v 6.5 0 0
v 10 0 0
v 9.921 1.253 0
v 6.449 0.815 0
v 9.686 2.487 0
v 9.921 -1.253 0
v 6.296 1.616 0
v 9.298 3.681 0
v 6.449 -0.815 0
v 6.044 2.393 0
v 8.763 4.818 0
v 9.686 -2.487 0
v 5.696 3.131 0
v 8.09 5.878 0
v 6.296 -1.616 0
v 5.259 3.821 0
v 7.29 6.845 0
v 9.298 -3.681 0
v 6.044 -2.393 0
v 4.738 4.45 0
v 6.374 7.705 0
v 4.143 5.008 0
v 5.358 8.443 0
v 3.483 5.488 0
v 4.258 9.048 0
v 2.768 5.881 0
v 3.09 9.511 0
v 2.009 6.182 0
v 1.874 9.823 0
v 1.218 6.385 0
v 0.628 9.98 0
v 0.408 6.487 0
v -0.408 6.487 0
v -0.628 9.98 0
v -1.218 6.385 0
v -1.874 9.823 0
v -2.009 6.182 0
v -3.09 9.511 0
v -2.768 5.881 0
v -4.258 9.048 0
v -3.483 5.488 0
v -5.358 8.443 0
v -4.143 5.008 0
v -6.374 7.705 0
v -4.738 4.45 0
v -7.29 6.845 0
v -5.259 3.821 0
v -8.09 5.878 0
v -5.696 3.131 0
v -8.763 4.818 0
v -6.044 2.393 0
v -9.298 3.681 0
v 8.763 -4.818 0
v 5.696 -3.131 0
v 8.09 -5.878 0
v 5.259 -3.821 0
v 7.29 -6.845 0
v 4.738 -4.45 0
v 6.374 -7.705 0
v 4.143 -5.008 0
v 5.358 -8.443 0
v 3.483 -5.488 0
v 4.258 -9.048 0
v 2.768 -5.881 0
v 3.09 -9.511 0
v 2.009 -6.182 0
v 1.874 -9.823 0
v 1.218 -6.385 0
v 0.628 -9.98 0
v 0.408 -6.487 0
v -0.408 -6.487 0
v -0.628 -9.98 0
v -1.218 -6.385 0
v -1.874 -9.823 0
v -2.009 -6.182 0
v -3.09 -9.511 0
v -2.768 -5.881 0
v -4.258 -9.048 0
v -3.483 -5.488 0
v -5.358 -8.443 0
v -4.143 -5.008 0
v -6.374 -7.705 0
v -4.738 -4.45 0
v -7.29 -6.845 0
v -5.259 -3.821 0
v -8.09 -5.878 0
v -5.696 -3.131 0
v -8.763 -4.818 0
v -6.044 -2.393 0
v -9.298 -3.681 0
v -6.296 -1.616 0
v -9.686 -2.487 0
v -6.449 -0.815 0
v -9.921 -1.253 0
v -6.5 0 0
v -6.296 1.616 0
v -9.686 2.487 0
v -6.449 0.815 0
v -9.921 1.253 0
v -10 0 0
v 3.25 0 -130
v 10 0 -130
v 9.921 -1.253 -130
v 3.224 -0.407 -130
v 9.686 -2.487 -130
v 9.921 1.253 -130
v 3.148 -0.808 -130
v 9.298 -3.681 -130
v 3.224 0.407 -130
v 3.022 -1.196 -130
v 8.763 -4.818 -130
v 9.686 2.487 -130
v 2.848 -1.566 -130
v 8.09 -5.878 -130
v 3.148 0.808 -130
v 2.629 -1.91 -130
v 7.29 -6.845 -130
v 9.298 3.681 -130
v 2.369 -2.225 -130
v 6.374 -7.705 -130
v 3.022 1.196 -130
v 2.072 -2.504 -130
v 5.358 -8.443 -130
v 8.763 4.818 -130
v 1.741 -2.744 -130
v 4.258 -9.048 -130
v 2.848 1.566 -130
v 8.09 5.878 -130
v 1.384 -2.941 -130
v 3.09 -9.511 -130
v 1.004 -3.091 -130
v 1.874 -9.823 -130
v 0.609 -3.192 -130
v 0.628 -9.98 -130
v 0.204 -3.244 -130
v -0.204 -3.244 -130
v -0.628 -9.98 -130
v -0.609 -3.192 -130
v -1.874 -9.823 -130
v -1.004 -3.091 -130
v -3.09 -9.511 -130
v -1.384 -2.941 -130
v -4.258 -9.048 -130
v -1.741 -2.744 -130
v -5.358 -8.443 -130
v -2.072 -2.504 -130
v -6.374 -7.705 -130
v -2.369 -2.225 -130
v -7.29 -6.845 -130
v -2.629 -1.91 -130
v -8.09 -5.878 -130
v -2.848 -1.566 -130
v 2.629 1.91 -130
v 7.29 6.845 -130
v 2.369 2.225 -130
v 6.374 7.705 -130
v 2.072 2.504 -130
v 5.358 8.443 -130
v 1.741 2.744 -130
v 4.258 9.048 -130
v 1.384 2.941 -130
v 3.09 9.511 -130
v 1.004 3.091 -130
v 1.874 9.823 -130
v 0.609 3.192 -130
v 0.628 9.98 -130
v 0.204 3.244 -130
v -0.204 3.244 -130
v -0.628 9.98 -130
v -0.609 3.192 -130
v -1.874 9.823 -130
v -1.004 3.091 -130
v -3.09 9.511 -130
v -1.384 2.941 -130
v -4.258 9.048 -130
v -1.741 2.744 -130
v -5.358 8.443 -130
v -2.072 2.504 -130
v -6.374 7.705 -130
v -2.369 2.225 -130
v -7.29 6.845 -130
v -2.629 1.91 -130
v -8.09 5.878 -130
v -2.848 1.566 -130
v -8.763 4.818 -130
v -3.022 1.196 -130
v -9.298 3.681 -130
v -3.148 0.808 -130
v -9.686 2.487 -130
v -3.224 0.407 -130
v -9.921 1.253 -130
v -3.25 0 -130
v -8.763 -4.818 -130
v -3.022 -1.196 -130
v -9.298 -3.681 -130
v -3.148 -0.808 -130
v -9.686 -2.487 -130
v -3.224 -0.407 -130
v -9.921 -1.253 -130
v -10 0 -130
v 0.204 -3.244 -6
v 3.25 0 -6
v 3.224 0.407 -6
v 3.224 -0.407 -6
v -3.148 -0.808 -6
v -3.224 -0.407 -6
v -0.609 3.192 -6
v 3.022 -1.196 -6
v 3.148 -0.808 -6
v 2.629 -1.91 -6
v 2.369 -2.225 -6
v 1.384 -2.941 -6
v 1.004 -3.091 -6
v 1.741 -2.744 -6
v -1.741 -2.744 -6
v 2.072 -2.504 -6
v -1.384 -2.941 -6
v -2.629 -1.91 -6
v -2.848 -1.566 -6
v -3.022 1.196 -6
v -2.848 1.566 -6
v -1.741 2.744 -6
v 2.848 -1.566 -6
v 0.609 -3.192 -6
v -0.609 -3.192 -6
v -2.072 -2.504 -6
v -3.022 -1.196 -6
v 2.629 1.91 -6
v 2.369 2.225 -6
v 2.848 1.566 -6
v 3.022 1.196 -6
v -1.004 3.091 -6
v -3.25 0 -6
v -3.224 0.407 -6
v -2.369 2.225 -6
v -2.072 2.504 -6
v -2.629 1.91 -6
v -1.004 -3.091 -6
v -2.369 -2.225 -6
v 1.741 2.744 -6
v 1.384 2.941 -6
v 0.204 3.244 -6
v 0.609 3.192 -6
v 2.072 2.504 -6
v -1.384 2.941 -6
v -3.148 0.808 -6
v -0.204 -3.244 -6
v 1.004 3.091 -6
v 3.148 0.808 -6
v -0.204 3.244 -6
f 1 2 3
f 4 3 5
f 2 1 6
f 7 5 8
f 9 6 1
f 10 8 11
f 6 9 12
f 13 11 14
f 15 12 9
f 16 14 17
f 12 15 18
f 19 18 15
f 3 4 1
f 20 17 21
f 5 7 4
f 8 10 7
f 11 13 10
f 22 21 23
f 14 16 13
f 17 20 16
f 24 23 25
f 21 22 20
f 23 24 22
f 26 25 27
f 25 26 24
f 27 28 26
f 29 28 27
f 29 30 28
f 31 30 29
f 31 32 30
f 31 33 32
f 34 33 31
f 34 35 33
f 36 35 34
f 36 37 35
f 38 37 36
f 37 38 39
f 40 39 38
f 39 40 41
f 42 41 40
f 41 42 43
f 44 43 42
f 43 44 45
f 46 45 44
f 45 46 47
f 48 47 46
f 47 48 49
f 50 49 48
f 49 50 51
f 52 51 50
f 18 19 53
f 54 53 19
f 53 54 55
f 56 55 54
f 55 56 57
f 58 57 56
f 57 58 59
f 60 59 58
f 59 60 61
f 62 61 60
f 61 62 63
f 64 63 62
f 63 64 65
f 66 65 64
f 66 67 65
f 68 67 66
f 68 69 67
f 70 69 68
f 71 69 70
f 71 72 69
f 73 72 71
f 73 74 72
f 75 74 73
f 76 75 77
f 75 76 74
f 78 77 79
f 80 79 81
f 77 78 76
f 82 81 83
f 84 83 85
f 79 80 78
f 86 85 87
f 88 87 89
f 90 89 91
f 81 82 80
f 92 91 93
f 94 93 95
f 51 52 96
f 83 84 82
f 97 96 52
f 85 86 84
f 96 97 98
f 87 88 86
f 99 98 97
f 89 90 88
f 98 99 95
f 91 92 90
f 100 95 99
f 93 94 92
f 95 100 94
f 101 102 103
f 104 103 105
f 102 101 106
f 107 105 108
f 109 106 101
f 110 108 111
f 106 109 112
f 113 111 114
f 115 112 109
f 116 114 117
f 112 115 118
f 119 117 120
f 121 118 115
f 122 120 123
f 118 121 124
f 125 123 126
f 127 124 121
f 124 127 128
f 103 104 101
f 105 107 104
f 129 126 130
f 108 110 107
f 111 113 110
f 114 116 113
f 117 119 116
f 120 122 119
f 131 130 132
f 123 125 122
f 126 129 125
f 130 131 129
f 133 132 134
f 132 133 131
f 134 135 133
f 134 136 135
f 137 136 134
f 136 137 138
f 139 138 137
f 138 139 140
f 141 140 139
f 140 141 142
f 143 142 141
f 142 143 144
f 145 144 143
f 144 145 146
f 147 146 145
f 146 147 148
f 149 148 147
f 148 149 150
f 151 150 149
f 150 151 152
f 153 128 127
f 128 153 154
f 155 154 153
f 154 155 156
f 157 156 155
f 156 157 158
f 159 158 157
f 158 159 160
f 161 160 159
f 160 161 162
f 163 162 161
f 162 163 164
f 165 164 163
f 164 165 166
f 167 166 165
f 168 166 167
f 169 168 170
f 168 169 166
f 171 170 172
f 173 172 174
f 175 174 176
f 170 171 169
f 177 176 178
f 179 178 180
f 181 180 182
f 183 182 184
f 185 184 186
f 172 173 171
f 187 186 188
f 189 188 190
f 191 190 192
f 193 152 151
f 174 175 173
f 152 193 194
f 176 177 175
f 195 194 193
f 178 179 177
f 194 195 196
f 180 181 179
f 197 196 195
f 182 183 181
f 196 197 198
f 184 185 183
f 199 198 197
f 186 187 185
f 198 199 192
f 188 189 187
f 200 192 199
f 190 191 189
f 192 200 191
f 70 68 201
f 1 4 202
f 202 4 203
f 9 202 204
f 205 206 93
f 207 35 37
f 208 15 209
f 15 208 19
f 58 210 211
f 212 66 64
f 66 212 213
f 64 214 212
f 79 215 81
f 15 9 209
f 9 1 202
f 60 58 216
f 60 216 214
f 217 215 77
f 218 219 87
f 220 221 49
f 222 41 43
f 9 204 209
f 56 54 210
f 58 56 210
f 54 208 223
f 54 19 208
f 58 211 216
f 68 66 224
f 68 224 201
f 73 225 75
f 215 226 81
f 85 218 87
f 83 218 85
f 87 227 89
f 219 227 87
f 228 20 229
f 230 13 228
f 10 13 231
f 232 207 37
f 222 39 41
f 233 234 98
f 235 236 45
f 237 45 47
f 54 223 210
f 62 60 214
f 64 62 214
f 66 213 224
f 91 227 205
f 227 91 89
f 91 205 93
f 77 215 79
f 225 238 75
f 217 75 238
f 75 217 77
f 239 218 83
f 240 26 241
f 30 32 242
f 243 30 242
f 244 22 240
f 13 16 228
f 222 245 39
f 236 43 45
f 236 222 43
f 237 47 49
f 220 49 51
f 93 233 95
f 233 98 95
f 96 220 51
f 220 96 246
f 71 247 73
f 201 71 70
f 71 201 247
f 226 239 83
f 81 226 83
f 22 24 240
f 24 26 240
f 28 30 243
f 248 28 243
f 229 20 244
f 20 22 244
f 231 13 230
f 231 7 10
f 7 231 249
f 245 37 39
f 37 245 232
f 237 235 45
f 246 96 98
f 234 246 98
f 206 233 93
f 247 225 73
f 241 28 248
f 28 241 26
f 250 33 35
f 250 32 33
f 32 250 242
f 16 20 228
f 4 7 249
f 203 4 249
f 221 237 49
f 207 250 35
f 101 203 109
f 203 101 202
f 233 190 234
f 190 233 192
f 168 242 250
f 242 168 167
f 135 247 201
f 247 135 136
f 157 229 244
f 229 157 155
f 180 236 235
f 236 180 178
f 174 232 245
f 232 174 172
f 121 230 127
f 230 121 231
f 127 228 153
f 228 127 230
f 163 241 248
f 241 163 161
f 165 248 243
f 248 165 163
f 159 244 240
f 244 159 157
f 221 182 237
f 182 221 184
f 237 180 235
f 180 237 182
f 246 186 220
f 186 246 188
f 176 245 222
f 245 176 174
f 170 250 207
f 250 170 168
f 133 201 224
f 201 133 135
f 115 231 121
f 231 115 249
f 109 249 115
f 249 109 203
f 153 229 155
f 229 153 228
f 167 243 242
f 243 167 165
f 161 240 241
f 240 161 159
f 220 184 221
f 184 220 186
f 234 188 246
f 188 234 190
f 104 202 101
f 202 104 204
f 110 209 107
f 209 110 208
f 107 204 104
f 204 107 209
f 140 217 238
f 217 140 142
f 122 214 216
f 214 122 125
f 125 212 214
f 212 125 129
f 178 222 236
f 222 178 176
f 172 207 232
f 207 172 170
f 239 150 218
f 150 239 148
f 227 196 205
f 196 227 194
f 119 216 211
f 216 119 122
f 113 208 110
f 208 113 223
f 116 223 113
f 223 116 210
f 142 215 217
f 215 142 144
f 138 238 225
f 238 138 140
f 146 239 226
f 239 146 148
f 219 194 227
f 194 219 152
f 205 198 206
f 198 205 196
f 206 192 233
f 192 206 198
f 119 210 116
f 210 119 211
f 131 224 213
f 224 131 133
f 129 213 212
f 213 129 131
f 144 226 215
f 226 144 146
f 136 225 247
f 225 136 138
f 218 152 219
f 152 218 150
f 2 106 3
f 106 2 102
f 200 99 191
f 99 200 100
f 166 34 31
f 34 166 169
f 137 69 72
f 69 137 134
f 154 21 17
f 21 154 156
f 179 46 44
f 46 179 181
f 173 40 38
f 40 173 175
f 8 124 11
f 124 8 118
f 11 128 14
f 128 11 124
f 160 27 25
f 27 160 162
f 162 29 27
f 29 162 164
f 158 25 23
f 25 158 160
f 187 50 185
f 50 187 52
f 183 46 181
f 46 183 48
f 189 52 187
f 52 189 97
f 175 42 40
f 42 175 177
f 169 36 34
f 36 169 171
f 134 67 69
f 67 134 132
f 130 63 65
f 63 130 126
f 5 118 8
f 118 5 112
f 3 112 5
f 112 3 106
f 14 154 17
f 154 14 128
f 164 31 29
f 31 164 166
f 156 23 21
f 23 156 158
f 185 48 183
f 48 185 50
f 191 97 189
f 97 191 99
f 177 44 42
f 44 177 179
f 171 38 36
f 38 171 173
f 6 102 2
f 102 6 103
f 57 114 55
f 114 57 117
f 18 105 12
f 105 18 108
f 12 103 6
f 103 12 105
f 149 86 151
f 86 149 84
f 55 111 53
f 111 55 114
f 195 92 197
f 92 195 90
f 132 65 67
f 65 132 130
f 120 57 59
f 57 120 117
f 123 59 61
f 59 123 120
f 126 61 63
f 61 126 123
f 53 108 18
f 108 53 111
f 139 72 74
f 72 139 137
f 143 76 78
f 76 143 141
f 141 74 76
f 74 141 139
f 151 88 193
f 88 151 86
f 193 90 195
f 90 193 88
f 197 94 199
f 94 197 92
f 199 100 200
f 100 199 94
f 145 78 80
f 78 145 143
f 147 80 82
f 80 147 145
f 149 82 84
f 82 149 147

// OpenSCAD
$fn = 50;


difference() {
	union() {
		translate(v = [0, 0, -130.0000000000]) {
			cylinder(h = 130, r = 10.0000000000);
		}
	}
	union() {
		translate(v = [0, 0, 0]) {
			rotate(a = [0, 0, 0]) {
				difference() {
					union() {
						#translate(v = [0, 0, -130.0000000000]) {
							cylinder(h = 130, r = 2.2500000000);
						}
						#translate(v = [0, 0, -6]) {
							cylinder(h = 6, r1 = 3.2500000000, r2 = 6.5000000000);
						}
						#translate(v = [0, 0, -130.0000000000]) {
							cylinder(h = 130, r = 3.2500000000);
						}
						#translate(v = [0, 0, -130.0000000000]) {
							cylinder(h = 130, r = 2.2500000000);
						}
					}
					union();
				}
			}
		}
	}
}
